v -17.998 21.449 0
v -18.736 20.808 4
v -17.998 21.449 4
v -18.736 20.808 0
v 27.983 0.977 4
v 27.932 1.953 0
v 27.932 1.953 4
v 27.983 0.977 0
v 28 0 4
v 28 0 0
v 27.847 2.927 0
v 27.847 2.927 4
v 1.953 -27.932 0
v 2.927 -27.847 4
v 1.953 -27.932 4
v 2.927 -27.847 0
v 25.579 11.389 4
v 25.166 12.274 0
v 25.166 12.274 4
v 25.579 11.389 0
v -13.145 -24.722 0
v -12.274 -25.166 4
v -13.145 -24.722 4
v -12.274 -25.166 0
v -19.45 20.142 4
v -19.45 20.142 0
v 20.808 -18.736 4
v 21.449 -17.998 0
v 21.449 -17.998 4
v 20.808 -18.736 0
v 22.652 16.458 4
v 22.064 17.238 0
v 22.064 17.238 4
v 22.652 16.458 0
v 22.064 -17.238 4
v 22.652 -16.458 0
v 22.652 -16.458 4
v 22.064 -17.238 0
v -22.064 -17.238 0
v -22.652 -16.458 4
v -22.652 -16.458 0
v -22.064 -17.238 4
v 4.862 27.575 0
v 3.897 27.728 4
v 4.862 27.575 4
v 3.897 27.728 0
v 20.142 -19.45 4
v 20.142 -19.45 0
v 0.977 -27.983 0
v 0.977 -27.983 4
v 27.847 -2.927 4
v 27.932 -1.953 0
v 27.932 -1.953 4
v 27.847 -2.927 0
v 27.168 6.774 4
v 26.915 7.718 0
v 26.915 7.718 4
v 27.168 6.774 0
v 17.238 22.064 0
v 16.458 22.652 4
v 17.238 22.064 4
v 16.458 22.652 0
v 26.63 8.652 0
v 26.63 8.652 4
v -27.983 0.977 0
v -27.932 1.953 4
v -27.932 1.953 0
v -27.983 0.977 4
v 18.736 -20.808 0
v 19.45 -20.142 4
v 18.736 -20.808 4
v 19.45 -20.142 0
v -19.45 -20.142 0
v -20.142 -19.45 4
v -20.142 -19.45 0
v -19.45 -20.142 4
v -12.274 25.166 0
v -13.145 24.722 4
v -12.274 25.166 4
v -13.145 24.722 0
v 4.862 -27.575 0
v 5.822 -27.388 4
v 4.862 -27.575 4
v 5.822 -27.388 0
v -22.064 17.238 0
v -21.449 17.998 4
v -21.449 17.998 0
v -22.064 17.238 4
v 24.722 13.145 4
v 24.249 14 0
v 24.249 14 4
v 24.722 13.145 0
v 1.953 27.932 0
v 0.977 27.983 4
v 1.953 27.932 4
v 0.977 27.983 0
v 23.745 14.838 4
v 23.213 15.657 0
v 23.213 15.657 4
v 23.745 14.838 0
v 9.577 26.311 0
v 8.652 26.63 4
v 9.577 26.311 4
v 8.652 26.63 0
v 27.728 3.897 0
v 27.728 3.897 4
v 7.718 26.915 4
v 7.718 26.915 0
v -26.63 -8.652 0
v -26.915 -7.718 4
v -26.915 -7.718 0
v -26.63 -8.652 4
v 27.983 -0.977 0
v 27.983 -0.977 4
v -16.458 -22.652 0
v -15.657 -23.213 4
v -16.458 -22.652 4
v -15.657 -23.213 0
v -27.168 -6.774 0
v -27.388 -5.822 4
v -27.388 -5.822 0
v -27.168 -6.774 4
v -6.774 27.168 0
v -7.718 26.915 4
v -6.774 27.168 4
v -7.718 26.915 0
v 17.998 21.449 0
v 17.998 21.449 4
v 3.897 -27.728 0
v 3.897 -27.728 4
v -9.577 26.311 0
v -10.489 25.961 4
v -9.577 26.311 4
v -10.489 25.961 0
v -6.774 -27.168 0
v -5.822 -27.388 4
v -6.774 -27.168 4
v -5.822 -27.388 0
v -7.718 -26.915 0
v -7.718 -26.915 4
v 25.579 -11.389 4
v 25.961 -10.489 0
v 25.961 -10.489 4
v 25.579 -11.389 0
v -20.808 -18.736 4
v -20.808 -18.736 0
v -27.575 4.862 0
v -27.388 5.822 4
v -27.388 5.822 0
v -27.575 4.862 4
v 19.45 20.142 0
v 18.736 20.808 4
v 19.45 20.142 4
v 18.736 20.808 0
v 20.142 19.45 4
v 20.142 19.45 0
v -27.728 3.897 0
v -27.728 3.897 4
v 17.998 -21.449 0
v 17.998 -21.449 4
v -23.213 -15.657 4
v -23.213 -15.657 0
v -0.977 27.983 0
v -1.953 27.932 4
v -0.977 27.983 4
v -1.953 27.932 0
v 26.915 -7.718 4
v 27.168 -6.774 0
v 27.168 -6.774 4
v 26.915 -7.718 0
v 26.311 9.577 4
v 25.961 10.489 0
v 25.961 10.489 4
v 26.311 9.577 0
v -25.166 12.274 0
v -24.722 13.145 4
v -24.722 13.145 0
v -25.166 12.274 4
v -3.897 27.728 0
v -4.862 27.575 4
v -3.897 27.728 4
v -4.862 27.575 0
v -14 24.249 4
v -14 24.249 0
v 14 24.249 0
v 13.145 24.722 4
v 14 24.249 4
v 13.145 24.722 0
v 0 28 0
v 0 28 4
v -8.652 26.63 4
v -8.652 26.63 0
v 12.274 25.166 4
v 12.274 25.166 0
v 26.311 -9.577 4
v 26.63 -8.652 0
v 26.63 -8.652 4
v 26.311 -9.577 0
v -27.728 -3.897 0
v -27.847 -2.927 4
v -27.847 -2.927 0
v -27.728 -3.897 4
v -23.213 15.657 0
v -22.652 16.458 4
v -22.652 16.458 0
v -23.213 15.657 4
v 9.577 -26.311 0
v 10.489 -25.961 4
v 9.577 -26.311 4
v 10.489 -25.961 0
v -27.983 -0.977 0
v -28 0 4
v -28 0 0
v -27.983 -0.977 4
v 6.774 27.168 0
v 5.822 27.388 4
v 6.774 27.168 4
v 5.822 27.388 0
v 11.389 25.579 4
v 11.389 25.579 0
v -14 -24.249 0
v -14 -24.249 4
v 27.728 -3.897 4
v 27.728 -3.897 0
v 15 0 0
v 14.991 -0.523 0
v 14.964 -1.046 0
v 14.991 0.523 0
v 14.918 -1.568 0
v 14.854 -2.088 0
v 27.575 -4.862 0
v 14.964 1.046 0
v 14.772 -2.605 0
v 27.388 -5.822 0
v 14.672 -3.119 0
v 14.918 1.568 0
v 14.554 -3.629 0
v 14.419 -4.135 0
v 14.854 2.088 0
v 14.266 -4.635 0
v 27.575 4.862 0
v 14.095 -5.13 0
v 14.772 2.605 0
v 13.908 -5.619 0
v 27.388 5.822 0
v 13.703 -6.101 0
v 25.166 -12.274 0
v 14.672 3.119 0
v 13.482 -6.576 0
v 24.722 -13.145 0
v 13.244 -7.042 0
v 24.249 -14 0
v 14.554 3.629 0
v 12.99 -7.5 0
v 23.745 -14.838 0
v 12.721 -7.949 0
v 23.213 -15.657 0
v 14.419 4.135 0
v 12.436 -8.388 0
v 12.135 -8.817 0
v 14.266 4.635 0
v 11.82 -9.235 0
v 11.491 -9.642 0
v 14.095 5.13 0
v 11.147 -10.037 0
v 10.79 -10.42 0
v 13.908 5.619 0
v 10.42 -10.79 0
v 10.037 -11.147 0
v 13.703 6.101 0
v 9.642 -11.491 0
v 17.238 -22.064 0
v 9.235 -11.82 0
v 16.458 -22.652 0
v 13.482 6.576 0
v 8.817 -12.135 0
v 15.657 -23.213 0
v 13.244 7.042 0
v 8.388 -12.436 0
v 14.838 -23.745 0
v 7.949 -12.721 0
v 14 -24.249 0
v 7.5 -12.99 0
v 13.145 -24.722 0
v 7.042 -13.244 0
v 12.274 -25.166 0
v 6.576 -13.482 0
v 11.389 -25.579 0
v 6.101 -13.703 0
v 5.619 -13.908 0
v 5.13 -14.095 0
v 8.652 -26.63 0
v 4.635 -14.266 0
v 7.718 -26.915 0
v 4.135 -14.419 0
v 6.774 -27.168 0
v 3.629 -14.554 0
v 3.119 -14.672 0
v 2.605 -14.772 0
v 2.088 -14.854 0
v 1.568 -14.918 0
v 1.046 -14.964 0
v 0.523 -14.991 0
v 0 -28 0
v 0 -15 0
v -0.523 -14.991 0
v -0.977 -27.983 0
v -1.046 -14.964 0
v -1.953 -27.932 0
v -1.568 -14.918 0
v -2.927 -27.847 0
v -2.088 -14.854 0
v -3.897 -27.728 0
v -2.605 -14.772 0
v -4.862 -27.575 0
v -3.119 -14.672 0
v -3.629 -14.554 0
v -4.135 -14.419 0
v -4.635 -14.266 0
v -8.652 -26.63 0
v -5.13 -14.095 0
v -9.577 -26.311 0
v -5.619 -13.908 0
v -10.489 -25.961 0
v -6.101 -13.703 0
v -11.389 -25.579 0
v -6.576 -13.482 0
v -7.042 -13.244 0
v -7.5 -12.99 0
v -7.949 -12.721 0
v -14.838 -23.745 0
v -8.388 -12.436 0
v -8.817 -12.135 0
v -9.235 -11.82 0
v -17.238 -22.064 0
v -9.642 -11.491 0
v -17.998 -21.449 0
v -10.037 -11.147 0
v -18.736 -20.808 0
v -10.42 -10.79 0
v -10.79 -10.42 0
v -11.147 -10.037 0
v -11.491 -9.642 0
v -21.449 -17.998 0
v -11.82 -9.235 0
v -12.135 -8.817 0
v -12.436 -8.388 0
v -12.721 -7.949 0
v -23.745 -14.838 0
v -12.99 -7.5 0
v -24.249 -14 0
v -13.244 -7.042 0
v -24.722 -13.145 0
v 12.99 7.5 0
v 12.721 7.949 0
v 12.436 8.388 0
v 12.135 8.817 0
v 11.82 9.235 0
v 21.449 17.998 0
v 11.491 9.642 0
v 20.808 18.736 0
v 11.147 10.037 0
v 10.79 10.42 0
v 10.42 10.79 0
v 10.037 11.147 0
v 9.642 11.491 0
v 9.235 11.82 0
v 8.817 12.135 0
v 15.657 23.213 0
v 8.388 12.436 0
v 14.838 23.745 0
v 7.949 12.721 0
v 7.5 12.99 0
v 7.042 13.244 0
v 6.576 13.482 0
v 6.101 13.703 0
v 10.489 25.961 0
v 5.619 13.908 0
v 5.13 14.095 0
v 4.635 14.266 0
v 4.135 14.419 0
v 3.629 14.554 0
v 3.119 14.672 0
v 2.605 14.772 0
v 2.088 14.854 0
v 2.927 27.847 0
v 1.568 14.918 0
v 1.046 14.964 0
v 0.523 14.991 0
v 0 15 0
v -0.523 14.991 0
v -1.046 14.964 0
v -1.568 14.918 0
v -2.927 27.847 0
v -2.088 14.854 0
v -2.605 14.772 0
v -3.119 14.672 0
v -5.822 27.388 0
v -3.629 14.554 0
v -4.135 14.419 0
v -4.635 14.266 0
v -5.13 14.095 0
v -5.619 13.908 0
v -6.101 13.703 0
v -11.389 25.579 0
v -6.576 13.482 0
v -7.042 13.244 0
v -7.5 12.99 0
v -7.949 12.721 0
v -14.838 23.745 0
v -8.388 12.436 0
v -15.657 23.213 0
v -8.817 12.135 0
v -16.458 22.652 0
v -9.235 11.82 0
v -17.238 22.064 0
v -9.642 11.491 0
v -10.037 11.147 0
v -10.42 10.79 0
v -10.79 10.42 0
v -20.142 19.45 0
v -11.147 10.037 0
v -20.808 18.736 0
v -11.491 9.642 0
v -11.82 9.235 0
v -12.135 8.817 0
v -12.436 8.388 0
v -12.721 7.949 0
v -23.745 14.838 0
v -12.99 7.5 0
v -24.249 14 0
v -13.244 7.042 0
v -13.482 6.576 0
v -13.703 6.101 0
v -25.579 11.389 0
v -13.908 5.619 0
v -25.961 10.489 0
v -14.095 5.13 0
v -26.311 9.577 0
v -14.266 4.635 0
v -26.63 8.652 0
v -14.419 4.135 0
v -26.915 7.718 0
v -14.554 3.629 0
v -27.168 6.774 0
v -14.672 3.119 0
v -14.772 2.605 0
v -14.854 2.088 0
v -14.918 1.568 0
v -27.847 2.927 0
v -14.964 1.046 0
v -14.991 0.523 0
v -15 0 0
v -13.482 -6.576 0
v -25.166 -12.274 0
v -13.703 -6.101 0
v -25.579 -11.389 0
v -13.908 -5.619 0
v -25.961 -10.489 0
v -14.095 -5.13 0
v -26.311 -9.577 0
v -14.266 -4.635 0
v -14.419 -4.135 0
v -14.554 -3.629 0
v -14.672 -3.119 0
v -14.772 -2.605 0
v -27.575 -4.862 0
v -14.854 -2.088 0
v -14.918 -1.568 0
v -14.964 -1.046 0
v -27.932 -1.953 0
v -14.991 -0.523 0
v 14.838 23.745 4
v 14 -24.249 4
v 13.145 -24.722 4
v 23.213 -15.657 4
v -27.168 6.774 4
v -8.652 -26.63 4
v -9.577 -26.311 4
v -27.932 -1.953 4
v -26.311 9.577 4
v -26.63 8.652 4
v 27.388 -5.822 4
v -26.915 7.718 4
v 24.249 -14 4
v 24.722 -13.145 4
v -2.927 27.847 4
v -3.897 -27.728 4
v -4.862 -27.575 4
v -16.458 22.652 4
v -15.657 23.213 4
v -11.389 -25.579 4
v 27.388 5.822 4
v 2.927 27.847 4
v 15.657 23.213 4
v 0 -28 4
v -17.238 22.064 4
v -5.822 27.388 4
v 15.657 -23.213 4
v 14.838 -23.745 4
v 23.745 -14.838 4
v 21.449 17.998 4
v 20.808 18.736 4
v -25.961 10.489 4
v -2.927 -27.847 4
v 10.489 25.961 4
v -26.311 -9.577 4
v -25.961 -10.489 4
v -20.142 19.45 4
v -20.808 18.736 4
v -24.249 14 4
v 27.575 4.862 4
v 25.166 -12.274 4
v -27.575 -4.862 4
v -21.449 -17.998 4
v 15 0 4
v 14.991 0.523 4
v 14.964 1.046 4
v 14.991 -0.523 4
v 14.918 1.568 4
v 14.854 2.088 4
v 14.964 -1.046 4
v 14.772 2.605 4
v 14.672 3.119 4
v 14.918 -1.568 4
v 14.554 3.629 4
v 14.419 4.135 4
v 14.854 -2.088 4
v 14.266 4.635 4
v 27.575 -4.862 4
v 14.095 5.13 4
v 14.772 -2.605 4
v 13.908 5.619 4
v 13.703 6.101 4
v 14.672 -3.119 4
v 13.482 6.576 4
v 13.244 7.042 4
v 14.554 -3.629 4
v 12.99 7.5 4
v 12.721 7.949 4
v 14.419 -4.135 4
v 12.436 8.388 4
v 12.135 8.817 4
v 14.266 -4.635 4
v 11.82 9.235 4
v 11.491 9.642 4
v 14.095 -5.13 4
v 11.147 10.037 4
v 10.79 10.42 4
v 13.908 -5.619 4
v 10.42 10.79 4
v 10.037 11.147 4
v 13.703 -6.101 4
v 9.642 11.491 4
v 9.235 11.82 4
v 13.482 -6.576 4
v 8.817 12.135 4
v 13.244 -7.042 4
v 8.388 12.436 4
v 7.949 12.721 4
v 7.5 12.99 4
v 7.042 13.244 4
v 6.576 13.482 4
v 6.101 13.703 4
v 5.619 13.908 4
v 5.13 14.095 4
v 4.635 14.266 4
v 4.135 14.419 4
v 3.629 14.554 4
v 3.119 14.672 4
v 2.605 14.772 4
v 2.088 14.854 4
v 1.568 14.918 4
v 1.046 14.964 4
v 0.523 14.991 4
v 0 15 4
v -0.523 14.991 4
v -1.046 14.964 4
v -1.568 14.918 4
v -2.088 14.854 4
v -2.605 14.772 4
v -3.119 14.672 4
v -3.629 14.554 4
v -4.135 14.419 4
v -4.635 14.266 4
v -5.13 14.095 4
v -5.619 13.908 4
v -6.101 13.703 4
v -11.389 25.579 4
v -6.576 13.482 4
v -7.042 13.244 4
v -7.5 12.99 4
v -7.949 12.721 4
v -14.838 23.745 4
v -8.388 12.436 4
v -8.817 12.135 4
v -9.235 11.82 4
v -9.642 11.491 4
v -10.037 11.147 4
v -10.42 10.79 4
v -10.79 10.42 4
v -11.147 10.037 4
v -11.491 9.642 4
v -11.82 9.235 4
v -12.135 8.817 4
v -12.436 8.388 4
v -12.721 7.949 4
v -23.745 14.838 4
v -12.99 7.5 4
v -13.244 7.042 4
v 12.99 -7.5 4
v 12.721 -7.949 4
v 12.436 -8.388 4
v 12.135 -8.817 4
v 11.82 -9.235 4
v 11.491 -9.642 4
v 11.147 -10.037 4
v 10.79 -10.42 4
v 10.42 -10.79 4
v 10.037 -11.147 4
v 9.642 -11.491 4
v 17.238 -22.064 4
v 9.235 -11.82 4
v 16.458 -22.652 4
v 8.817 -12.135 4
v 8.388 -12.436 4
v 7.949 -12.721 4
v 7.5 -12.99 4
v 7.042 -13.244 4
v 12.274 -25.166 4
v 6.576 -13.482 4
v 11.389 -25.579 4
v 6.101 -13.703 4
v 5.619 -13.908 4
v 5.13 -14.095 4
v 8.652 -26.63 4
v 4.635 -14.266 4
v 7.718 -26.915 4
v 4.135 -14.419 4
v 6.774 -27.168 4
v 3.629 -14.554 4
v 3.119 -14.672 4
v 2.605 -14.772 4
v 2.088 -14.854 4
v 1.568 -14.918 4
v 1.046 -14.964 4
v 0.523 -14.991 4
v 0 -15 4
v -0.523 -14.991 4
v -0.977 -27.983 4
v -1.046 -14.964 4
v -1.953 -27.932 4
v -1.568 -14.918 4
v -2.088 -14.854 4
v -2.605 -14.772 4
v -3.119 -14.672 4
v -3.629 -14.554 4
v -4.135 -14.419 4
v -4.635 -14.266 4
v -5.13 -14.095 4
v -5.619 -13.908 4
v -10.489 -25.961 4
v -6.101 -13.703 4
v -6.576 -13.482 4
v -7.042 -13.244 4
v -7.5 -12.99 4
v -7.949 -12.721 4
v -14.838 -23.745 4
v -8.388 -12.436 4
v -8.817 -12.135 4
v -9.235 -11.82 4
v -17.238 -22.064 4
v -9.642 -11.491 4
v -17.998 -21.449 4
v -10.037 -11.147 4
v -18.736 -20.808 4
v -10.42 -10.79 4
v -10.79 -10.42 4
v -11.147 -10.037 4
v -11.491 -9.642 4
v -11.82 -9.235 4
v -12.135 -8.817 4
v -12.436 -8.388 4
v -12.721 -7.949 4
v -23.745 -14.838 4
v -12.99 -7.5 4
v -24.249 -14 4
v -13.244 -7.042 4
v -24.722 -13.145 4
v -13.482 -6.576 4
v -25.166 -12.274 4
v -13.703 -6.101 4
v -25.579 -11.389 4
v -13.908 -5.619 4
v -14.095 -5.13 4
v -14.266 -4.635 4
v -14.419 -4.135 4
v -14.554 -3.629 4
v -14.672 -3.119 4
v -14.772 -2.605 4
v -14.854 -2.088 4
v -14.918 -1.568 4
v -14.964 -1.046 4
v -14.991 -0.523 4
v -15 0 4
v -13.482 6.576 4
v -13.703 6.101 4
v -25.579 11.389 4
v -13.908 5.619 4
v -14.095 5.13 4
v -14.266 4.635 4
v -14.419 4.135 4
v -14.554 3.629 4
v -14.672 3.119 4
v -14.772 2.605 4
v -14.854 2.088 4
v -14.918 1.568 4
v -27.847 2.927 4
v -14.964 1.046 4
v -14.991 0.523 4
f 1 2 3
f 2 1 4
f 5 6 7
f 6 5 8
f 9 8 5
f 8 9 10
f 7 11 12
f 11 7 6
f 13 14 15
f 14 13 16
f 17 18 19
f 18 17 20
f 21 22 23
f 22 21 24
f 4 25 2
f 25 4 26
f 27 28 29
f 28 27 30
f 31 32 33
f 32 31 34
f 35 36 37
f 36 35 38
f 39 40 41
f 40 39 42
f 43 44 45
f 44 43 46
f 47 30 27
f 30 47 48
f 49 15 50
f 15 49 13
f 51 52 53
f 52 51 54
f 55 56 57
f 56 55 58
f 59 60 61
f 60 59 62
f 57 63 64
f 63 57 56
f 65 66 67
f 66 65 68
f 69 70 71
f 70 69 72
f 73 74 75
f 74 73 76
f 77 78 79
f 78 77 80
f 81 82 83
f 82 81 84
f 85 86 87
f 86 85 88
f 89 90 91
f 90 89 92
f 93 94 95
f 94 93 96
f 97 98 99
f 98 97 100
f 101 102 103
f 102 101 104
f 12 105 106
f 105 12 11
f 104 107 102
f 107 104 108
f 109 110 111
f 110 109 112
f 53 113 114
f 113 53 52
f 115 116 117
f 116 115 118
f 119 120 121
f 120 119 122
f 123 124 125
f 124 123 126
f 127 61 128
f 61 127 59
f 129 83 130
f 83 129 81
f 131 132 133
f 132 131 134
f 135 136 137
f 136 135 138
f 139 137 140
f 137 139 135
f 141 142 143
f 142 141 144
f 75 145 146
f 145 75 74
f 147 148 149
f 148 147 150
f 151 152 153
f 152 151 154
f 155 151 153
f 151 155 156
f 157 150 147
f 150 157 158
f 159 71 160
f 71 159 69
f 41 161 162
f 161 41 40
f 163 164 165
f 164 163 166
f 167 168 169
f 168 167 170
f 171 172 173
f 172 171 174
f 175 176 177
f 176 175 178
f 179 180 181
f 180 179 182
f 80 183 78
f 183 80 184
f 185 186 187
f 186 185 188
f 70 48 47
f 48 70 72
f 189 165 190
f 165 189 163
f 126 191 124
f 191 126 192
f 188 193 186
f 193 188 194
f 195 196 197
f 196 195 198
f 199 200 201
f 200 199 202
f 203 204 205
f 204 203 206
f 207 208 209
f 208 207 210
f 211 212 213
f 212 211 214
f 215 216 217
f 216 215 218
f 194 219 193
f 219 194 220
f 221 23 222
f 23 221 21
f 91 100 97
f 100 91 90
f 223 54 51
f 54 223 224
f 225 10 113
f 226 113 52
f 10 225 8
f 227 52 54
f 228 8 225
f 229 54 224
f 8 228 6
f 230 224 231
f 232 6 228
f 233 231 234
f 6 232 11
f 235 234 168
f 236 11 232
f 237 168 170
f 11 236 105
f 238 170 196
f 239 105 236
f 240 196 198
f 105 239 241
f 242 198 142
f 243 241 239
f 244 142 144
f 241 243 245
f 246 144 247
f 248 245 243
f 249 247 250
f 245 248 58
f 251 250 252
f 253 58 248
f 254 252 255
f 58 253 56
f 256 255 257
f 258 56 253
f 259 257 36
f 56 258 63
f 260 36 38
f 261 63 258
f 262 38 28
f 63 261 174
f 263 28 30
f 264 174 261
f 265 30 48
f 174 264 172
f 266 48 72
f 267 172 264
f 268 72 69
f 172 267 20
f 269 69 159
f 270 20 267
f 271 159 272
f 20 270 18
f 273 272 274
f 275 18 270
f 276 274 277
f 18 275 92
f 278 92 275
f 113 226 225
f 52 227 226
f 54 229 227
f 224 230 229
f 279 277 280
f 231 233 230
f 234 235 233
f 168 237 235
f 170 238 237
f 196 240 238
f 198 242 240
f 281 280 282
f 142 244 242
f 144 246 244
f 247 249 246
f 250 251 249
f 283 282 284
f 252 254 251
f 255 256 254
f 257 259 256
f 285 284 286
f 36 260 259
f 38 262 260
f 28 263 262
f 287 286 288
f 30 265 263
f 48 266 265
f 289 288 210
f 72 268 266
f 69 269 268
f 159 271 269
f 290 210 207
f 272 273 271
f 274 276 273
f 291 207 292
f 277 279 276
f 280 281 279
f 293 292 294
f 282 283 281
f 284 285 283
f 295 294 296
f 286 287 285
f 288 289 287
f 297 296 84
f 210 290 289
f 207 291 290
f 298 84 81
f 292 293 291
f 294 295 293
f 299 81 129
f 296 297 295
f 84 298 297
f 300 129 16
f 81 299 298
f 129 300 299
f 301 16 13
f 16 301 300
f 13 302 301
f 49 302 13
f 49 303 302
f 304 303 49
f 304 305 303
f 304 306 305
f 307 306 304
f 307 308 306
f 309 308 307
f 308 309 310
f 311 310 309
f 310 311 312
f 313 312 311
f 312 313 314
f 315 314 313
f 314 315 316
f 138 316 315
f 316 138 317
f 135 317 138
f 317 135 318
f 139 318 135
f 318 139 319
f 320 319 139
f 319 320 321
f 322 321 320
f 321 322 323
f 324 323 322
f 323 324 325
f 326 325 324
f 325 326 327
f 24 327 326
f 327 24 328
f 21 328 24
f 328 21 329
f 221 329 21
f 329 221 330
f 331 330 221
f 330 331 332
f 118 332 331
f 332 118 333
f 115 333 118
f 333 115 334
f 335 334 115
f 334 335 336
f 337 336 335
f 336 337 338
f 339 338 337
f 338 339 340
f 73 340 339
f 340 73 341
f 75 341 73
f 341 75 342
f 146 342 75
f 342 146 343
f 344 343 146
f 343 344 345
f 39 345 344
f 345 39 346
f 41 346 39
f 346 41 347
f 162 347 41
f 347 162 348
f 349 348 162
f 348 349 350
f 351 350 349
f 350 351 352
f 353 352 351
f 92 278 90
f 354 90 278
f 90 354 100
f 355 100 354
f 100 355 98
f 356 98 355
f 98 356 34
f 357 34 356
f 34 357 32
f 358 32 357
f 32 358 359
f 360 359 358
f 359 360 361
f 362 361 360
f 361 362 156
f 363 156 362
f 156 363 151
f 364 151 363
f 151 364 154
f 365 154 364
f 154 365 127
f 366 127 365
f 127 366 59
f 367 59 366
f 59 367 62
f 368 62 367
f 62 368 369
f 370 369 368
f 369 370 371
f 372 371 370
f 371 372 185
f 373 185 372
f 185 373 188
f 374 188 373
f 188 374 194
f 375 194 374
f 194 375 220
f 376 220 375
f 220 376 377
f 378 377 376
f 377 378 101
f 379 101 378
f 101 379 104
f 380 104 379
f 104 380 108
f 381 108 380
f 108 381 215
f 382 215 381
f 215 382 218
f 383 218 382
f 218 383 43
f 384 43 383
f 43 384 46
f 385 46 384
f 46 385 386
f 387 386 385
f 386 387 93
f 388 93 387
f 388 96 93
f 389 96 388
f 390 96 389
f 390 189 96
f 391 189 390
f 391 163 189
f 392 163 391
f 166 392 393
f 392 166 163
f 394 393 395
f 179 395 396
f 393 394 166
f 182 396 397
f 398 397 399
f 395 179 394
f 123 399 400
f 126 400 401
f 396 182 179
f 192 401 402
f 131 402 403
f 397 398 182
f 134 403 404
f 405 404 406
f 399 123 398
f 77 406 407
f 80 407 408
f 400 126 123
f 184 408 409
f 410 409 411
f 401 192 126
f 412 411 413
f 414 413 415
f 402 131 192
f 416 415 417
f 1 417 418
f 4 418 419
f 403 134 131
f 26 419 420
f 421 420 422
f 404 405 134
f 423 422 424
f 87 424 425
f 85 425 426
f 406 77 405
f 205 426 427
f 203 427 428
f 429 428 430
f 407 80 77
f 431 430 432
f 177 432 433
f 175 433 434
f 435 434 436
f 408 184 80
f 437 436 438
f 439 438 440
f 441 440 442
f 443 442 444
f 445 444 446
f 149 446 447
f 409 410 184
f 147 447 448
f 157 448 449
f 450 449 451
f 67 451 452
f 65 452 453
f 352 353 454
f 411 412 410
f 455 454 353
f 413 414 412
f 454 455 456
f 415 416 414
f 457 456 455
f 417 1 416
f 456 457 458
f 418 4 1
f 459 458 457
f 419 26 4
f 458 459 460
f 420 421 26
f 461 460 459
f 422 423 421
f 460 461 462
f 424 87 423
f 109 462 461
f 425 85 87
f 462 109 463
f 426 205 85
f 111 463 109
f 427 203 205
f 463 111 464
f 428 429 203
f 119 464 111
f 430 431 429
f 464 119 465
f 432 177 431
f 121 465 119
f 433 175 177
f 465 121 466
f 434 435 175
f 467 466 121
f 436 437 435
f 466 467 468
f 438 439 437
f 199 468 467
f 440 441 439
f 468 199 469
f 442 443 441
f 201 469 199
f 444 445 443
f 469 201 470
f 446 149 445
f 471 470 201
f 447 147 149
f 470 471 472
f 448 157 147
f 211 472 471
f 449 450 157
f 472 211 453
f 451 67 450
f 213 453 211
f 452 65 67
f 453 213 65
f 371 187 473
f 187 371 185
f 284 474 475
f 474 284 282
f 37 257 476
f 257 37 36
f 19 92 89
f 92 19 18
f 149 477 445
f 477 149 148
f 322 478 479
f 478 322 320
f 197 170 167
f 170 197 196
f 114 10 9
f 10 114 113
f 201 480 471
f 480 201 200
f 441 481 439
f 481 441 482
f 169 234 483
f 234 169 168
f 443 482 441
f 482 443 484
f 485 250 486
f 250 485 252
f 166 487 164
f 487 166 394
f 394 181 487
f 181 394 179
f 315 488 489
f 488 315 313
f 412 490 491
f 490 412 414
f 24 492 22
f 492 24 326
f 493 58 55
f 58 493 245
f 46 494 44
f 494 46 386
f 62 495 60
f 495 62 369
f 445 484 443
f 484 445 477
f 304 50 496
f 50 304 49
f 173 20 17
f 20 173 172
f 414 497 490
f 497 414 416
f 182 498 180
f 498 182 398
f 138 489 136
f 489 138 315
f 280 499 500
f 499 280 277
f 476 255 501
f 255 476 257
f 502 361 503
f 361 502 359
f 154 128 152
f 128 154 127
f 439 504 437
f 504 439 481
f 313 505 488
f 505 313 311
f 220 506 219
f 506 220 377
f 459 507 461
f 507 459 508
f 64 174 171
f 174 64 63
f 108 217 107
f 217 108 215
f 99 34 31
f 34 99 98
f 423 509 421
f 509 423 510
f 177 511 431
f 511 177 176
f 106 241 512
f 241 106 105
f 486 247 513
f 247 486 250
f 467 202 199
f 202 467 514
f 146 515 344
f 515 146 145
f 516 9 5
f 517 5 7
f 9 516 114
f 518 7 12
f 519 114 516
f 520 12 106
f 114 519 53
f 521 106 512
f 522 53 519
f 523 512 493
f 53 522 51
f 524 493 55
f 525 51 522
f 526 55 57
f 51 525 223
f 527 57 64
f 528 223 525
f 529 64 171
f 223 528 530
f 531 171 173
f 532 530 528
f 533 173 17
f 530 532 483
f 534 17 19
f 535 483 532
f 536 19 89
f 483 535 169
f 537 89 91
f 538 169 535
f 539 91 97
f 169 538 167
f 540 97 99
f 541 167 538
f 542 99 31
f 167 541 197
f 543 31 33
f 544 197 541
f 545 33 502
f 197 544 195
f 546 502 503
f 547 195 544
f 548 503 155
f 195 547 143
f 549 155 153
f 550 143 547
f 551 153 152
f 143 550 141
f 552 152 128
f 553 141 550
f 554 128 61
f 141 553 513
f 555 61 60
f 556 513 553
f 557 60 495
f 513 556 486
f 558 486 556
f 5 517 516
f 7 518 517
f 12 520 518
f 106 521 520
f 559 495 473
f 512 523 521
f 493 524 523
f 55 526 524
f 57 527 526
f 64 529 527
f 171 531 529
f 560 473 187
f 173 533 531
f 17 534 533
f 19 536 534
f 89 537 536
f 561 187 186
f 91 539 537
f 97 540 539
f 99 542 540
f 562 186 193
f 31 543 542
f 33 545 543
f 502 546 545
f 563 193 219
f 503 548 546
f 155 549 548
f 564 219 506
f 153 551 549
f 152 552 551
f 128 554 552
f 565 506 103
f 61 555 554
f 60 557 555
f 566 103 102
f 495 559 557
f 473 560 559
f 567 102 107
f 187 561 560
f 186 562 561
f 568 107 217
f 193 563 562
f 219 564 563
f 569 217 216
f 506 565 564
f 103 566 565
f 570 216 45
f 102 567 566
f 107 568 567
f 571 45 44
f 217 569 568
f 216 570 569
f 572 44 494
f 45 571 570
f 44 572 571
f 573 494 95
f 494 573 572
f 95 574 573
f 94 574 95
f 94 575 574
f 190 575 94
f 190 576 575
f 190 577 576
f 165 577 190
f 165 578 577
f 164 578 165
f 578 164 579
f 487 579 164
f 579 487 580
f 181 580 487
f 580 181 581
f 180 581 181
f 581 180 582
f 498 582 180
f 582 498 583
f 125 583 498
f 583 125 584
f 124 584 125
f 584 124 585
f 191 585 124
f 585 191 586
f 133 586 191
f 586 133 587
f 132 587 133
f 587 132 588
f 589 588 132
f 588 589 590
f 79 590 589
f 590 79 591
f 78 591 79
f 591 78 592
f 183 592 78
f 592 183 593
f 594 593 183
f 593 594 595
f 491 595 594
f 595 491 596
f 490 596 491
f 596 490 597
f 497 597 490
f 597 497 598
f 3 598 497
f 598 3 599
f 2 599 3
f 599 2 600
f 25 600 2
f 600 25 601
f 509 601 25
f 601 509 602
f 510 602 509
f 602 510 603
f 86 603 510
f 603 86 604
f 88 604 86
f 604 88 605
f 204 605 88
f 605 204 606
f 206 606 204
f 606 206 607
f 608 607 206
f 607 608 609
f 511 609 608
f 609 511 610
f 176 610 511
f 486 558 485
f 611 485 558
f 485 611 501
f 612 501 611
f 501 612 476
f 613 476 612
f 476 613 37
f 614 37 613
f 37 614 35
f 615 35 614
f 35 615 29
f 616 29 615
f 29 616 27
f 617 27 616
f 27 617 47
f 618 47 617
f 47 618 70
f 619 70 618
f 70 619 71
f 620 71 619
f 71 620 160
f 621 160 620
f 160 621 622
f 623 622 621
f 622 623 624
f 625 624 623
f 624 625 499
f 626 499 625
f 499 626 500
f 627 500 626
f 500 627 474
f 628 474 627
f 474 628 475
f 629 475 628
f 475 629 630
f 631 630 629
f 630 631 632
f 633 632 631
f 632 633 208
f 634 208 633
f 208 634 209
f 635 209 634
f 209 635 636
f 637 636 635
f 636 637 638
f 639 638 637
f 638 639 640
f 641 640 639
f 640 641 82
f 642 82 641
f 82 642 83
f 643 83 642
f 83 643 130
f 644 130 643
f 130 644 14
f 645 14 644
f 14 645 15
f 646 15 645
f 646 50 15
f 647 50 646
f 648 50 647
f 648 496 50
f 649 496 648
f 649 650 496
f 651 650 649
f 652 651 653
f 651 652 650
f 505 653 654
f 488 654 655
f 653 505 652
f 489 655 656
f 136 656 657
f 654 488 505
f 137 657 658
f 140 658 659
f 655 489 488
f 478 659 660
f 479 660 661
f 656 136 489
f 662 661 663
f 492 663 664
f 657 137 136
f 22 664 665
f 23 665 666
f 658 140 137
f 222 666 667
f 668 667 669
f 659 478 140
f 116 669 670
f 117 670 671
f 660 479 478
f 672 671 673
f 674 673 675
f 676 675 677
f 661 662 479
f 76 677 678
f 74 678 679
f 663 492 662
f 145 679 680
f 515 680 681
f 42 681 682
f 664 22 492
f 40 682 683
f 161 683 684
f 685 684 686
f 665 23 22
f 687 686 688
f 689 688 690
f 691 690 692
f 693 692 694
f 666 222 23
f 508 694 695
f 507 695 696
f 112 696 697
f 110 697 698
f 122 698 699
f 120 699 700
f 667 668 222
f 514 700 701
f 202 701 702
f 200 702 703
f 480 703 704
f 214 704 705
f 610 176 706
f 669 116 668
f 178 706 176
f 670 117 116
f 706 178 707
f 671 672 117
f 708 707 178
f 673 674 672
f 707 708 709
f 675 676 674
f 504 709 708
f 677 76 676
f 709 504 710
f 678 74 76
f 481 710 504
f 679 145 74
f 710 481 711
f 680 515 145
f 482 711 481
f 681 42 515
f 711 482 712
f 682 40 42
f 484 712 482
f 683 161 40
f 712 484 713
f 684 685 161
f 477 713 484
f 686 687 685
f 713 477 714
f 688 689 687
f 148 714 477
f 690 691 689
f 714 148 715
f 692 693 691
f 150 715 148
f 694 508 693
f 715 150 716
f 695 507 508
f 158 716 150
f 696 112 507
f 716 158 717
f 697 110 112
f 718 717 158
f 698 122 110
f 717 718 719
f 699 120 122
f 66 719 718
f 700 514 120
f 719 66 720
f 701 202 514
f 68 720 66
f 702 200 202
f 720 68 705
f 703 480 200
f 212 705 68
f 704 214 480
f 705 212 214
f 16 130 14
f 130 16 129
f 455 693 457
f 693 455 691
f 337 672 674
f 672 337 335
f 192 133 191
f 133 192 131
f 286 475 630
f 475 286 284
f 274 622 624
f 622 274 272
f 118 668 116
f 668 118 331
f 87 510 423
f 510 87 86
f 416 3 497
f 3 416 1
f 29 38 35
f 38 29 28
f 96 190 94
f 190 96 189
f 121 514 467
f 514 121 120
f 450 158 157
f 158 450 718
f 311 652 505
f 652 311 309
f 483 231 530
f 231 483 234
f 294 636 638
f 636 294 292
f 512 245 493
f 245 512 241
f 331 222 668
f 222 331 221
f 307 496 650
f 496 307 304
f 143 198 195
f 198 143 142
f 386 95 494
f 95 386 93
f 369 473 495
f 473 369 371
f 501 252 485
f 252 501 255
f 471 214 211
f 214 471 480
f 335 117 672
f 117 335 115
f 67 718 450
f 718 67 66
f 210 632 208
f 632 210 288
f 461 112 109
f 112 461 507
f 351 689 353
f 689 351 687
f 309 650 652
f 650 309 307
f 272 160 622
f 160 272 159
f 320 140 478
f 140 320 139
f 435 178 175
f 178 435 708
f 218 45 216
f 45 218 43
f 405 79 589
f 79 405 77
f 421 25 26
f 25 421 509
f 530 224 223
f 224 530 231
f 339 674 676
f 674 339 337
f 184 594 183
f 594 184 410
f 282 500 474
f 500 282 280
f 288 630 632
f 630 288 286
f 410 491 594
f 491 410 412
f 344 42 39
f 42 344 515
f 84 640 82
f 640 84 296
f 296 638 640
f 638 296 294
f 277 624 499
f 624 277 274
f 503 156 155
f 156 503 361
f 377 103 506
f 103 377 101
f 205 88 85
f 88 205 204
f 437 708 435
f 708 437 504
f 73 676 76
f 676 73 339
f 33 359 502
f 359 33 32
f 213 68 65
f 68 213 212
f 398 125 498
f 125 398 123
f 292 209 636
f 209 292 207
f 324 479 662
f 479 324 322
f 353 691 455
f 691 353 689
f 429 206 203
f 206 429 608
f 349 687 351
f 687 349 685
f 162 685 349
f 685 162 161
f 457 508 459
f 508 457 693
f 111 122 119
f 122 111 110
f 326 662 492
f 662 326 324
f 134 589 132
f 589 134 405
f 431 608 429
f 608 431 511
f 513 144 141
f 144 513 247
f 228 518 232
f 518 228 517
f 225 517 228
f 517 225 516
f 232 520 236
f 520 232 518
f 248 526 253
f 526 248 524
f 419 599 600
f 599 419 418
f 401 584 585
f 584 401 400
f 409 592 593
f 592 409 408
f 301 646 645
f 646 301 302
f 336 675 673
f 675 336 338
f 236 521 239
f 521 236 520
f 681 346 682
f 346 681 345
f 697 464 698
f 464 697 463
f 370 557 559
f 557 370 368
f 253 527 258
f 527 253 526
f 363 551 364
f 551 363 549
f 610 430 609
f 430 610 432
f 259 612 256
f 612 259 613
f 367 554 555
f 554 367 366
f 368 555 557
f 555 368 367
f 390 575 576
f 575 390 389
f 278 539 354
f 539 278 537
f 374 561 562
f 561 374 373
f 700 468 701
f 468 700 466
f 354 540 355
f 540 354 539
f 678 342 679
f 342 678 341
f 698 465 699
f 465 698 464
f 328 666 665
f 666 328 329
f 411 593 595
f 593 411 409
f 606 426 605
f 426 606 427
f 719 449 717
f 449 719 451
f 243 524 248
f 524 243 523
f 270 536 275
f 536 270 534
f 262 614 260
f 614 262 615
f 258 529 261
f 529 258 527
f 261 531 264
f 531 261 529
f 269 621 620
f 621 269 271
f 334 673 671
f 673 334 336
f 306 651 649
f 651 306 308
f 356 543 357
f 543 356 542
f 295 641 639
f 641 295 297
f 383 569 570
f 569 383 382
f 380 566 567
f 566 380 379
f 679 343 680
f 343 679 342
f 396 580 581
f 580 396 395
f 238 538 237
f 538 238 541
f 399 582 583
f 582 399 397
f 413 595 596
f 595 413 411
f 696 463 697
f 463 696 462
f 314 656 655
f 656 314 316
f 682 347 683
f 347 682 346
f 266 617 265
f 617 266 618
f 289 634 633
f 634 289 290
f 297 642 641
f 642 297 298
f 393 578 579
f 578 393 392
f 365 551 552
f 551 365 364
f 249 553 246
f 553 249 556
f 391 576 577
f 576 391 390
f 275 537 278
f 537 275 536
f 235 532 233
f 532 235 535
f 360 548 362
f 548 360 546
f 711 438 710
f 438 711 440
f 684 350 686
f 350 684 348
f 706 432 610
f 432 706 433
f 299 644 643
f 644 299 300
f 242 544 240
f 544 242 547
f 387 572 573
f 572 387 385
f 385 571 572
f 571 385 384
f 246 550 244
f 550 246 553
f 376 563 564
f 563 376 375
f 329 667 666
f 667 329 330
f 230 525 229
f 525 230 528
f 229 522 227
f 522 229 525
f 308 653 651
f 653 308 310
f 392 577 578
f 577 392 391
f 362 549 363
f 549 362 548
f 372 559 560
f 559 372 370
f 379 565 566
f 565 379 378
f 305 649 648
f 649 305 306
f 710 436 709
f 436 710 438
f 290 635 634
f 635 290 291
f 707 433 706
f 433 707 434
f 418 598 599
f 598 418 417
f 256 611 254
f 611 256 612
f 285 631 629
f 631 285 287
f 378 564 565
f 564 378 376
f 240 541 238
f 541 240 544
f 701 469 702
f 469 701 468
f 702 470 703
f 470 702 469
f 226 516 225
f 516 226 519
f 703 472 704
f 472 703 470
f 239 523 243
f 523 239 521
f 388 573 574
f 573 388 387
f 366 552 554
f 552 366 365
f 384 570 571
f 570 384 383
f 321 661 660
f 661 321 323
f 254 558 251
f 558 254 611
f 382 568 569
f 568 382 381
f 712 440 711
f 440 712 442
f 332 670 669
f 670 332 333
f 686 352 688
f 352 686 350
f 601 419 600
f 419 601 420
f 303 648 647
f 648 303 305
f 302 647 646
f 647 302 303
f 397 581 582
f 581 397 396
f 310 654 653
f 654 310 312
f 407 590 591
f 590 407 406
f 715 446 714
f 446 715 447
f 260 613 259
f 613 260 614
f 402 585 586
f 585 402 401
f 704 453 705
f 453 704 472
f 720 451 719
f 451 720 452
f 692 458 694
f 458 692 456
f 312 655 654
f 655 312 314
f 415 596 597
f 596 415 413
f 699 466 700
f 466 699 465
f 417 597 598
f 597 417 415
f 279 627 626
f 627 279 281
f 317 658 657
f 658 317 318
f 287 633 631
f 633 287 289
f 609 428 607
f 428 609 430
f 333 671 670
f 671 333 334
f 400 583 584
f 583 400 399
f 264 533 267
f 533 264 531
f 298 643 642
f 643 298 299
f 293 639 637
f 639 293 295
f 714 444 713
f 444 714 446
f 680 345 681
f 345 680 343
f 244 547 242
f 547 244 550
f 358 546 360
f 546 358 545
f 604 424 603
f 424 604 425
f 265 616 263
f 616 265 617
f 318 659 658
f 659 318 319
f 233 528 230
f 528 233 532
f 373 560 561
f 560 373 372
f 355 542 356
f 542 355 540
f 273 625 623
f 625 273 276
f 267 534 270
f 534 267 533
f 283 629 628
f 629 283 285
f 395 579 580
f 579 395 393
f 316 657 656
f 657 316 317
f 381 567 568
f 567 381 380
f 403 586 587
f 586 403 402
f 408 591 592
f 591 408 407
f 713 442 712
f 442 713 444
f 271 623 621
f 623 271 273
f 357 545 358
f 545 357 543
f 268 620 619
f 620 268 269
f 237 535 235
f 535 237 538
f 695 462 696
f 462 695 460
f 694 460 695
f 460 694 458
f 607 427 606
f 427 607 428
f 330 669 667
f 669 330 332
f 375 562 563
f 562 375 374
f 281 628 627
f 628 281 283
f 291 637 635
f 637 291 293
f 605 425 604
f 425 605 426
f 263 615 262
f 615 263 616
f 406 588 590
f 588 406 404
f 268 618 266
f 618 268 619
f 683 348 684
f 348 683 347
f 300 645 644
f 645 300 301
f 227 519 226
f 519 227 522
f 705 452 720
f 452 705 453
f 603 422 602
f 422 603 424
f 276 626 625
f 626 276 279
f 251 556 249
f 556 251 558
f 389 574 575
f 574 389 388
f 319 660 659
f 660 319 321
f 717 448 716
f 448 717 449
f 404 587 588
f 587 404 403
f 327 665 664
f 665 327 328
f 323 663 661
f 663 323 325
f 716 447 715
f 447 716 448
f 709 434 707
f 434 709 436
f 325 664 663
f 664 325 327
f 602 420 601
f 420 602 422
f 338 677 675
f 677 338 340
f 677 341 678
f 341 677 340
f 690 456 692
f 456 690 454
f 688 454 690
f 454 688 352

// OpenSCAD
// File:        household_gadgets/faucet_washer/faucet_washer.scad
//
// Function:    Flat solid washer for a faucet, 56 mm across with a 30 mm hole.
//
// Usage:       openscad -o stl/faucet_washer.stl faucet_washer.scad
//
// Author:      Kjell Arne Rekaa, 2026-11-03
///////////////////////////////////////////////////////////////////////////////

washer_height        = 4;
outer_diameter       = 56;
hole_diameter        = 30;
cut_through_overlap  = 1;

$fn = 180;

difference() {
    cylinder(h = washer_height, d = outer_diameter);
    translate([0, 0, -cut_through_overlap])
        cylinder(h = washer_height + 2 * cut_through_overlap, d = hole_diameter);
}
